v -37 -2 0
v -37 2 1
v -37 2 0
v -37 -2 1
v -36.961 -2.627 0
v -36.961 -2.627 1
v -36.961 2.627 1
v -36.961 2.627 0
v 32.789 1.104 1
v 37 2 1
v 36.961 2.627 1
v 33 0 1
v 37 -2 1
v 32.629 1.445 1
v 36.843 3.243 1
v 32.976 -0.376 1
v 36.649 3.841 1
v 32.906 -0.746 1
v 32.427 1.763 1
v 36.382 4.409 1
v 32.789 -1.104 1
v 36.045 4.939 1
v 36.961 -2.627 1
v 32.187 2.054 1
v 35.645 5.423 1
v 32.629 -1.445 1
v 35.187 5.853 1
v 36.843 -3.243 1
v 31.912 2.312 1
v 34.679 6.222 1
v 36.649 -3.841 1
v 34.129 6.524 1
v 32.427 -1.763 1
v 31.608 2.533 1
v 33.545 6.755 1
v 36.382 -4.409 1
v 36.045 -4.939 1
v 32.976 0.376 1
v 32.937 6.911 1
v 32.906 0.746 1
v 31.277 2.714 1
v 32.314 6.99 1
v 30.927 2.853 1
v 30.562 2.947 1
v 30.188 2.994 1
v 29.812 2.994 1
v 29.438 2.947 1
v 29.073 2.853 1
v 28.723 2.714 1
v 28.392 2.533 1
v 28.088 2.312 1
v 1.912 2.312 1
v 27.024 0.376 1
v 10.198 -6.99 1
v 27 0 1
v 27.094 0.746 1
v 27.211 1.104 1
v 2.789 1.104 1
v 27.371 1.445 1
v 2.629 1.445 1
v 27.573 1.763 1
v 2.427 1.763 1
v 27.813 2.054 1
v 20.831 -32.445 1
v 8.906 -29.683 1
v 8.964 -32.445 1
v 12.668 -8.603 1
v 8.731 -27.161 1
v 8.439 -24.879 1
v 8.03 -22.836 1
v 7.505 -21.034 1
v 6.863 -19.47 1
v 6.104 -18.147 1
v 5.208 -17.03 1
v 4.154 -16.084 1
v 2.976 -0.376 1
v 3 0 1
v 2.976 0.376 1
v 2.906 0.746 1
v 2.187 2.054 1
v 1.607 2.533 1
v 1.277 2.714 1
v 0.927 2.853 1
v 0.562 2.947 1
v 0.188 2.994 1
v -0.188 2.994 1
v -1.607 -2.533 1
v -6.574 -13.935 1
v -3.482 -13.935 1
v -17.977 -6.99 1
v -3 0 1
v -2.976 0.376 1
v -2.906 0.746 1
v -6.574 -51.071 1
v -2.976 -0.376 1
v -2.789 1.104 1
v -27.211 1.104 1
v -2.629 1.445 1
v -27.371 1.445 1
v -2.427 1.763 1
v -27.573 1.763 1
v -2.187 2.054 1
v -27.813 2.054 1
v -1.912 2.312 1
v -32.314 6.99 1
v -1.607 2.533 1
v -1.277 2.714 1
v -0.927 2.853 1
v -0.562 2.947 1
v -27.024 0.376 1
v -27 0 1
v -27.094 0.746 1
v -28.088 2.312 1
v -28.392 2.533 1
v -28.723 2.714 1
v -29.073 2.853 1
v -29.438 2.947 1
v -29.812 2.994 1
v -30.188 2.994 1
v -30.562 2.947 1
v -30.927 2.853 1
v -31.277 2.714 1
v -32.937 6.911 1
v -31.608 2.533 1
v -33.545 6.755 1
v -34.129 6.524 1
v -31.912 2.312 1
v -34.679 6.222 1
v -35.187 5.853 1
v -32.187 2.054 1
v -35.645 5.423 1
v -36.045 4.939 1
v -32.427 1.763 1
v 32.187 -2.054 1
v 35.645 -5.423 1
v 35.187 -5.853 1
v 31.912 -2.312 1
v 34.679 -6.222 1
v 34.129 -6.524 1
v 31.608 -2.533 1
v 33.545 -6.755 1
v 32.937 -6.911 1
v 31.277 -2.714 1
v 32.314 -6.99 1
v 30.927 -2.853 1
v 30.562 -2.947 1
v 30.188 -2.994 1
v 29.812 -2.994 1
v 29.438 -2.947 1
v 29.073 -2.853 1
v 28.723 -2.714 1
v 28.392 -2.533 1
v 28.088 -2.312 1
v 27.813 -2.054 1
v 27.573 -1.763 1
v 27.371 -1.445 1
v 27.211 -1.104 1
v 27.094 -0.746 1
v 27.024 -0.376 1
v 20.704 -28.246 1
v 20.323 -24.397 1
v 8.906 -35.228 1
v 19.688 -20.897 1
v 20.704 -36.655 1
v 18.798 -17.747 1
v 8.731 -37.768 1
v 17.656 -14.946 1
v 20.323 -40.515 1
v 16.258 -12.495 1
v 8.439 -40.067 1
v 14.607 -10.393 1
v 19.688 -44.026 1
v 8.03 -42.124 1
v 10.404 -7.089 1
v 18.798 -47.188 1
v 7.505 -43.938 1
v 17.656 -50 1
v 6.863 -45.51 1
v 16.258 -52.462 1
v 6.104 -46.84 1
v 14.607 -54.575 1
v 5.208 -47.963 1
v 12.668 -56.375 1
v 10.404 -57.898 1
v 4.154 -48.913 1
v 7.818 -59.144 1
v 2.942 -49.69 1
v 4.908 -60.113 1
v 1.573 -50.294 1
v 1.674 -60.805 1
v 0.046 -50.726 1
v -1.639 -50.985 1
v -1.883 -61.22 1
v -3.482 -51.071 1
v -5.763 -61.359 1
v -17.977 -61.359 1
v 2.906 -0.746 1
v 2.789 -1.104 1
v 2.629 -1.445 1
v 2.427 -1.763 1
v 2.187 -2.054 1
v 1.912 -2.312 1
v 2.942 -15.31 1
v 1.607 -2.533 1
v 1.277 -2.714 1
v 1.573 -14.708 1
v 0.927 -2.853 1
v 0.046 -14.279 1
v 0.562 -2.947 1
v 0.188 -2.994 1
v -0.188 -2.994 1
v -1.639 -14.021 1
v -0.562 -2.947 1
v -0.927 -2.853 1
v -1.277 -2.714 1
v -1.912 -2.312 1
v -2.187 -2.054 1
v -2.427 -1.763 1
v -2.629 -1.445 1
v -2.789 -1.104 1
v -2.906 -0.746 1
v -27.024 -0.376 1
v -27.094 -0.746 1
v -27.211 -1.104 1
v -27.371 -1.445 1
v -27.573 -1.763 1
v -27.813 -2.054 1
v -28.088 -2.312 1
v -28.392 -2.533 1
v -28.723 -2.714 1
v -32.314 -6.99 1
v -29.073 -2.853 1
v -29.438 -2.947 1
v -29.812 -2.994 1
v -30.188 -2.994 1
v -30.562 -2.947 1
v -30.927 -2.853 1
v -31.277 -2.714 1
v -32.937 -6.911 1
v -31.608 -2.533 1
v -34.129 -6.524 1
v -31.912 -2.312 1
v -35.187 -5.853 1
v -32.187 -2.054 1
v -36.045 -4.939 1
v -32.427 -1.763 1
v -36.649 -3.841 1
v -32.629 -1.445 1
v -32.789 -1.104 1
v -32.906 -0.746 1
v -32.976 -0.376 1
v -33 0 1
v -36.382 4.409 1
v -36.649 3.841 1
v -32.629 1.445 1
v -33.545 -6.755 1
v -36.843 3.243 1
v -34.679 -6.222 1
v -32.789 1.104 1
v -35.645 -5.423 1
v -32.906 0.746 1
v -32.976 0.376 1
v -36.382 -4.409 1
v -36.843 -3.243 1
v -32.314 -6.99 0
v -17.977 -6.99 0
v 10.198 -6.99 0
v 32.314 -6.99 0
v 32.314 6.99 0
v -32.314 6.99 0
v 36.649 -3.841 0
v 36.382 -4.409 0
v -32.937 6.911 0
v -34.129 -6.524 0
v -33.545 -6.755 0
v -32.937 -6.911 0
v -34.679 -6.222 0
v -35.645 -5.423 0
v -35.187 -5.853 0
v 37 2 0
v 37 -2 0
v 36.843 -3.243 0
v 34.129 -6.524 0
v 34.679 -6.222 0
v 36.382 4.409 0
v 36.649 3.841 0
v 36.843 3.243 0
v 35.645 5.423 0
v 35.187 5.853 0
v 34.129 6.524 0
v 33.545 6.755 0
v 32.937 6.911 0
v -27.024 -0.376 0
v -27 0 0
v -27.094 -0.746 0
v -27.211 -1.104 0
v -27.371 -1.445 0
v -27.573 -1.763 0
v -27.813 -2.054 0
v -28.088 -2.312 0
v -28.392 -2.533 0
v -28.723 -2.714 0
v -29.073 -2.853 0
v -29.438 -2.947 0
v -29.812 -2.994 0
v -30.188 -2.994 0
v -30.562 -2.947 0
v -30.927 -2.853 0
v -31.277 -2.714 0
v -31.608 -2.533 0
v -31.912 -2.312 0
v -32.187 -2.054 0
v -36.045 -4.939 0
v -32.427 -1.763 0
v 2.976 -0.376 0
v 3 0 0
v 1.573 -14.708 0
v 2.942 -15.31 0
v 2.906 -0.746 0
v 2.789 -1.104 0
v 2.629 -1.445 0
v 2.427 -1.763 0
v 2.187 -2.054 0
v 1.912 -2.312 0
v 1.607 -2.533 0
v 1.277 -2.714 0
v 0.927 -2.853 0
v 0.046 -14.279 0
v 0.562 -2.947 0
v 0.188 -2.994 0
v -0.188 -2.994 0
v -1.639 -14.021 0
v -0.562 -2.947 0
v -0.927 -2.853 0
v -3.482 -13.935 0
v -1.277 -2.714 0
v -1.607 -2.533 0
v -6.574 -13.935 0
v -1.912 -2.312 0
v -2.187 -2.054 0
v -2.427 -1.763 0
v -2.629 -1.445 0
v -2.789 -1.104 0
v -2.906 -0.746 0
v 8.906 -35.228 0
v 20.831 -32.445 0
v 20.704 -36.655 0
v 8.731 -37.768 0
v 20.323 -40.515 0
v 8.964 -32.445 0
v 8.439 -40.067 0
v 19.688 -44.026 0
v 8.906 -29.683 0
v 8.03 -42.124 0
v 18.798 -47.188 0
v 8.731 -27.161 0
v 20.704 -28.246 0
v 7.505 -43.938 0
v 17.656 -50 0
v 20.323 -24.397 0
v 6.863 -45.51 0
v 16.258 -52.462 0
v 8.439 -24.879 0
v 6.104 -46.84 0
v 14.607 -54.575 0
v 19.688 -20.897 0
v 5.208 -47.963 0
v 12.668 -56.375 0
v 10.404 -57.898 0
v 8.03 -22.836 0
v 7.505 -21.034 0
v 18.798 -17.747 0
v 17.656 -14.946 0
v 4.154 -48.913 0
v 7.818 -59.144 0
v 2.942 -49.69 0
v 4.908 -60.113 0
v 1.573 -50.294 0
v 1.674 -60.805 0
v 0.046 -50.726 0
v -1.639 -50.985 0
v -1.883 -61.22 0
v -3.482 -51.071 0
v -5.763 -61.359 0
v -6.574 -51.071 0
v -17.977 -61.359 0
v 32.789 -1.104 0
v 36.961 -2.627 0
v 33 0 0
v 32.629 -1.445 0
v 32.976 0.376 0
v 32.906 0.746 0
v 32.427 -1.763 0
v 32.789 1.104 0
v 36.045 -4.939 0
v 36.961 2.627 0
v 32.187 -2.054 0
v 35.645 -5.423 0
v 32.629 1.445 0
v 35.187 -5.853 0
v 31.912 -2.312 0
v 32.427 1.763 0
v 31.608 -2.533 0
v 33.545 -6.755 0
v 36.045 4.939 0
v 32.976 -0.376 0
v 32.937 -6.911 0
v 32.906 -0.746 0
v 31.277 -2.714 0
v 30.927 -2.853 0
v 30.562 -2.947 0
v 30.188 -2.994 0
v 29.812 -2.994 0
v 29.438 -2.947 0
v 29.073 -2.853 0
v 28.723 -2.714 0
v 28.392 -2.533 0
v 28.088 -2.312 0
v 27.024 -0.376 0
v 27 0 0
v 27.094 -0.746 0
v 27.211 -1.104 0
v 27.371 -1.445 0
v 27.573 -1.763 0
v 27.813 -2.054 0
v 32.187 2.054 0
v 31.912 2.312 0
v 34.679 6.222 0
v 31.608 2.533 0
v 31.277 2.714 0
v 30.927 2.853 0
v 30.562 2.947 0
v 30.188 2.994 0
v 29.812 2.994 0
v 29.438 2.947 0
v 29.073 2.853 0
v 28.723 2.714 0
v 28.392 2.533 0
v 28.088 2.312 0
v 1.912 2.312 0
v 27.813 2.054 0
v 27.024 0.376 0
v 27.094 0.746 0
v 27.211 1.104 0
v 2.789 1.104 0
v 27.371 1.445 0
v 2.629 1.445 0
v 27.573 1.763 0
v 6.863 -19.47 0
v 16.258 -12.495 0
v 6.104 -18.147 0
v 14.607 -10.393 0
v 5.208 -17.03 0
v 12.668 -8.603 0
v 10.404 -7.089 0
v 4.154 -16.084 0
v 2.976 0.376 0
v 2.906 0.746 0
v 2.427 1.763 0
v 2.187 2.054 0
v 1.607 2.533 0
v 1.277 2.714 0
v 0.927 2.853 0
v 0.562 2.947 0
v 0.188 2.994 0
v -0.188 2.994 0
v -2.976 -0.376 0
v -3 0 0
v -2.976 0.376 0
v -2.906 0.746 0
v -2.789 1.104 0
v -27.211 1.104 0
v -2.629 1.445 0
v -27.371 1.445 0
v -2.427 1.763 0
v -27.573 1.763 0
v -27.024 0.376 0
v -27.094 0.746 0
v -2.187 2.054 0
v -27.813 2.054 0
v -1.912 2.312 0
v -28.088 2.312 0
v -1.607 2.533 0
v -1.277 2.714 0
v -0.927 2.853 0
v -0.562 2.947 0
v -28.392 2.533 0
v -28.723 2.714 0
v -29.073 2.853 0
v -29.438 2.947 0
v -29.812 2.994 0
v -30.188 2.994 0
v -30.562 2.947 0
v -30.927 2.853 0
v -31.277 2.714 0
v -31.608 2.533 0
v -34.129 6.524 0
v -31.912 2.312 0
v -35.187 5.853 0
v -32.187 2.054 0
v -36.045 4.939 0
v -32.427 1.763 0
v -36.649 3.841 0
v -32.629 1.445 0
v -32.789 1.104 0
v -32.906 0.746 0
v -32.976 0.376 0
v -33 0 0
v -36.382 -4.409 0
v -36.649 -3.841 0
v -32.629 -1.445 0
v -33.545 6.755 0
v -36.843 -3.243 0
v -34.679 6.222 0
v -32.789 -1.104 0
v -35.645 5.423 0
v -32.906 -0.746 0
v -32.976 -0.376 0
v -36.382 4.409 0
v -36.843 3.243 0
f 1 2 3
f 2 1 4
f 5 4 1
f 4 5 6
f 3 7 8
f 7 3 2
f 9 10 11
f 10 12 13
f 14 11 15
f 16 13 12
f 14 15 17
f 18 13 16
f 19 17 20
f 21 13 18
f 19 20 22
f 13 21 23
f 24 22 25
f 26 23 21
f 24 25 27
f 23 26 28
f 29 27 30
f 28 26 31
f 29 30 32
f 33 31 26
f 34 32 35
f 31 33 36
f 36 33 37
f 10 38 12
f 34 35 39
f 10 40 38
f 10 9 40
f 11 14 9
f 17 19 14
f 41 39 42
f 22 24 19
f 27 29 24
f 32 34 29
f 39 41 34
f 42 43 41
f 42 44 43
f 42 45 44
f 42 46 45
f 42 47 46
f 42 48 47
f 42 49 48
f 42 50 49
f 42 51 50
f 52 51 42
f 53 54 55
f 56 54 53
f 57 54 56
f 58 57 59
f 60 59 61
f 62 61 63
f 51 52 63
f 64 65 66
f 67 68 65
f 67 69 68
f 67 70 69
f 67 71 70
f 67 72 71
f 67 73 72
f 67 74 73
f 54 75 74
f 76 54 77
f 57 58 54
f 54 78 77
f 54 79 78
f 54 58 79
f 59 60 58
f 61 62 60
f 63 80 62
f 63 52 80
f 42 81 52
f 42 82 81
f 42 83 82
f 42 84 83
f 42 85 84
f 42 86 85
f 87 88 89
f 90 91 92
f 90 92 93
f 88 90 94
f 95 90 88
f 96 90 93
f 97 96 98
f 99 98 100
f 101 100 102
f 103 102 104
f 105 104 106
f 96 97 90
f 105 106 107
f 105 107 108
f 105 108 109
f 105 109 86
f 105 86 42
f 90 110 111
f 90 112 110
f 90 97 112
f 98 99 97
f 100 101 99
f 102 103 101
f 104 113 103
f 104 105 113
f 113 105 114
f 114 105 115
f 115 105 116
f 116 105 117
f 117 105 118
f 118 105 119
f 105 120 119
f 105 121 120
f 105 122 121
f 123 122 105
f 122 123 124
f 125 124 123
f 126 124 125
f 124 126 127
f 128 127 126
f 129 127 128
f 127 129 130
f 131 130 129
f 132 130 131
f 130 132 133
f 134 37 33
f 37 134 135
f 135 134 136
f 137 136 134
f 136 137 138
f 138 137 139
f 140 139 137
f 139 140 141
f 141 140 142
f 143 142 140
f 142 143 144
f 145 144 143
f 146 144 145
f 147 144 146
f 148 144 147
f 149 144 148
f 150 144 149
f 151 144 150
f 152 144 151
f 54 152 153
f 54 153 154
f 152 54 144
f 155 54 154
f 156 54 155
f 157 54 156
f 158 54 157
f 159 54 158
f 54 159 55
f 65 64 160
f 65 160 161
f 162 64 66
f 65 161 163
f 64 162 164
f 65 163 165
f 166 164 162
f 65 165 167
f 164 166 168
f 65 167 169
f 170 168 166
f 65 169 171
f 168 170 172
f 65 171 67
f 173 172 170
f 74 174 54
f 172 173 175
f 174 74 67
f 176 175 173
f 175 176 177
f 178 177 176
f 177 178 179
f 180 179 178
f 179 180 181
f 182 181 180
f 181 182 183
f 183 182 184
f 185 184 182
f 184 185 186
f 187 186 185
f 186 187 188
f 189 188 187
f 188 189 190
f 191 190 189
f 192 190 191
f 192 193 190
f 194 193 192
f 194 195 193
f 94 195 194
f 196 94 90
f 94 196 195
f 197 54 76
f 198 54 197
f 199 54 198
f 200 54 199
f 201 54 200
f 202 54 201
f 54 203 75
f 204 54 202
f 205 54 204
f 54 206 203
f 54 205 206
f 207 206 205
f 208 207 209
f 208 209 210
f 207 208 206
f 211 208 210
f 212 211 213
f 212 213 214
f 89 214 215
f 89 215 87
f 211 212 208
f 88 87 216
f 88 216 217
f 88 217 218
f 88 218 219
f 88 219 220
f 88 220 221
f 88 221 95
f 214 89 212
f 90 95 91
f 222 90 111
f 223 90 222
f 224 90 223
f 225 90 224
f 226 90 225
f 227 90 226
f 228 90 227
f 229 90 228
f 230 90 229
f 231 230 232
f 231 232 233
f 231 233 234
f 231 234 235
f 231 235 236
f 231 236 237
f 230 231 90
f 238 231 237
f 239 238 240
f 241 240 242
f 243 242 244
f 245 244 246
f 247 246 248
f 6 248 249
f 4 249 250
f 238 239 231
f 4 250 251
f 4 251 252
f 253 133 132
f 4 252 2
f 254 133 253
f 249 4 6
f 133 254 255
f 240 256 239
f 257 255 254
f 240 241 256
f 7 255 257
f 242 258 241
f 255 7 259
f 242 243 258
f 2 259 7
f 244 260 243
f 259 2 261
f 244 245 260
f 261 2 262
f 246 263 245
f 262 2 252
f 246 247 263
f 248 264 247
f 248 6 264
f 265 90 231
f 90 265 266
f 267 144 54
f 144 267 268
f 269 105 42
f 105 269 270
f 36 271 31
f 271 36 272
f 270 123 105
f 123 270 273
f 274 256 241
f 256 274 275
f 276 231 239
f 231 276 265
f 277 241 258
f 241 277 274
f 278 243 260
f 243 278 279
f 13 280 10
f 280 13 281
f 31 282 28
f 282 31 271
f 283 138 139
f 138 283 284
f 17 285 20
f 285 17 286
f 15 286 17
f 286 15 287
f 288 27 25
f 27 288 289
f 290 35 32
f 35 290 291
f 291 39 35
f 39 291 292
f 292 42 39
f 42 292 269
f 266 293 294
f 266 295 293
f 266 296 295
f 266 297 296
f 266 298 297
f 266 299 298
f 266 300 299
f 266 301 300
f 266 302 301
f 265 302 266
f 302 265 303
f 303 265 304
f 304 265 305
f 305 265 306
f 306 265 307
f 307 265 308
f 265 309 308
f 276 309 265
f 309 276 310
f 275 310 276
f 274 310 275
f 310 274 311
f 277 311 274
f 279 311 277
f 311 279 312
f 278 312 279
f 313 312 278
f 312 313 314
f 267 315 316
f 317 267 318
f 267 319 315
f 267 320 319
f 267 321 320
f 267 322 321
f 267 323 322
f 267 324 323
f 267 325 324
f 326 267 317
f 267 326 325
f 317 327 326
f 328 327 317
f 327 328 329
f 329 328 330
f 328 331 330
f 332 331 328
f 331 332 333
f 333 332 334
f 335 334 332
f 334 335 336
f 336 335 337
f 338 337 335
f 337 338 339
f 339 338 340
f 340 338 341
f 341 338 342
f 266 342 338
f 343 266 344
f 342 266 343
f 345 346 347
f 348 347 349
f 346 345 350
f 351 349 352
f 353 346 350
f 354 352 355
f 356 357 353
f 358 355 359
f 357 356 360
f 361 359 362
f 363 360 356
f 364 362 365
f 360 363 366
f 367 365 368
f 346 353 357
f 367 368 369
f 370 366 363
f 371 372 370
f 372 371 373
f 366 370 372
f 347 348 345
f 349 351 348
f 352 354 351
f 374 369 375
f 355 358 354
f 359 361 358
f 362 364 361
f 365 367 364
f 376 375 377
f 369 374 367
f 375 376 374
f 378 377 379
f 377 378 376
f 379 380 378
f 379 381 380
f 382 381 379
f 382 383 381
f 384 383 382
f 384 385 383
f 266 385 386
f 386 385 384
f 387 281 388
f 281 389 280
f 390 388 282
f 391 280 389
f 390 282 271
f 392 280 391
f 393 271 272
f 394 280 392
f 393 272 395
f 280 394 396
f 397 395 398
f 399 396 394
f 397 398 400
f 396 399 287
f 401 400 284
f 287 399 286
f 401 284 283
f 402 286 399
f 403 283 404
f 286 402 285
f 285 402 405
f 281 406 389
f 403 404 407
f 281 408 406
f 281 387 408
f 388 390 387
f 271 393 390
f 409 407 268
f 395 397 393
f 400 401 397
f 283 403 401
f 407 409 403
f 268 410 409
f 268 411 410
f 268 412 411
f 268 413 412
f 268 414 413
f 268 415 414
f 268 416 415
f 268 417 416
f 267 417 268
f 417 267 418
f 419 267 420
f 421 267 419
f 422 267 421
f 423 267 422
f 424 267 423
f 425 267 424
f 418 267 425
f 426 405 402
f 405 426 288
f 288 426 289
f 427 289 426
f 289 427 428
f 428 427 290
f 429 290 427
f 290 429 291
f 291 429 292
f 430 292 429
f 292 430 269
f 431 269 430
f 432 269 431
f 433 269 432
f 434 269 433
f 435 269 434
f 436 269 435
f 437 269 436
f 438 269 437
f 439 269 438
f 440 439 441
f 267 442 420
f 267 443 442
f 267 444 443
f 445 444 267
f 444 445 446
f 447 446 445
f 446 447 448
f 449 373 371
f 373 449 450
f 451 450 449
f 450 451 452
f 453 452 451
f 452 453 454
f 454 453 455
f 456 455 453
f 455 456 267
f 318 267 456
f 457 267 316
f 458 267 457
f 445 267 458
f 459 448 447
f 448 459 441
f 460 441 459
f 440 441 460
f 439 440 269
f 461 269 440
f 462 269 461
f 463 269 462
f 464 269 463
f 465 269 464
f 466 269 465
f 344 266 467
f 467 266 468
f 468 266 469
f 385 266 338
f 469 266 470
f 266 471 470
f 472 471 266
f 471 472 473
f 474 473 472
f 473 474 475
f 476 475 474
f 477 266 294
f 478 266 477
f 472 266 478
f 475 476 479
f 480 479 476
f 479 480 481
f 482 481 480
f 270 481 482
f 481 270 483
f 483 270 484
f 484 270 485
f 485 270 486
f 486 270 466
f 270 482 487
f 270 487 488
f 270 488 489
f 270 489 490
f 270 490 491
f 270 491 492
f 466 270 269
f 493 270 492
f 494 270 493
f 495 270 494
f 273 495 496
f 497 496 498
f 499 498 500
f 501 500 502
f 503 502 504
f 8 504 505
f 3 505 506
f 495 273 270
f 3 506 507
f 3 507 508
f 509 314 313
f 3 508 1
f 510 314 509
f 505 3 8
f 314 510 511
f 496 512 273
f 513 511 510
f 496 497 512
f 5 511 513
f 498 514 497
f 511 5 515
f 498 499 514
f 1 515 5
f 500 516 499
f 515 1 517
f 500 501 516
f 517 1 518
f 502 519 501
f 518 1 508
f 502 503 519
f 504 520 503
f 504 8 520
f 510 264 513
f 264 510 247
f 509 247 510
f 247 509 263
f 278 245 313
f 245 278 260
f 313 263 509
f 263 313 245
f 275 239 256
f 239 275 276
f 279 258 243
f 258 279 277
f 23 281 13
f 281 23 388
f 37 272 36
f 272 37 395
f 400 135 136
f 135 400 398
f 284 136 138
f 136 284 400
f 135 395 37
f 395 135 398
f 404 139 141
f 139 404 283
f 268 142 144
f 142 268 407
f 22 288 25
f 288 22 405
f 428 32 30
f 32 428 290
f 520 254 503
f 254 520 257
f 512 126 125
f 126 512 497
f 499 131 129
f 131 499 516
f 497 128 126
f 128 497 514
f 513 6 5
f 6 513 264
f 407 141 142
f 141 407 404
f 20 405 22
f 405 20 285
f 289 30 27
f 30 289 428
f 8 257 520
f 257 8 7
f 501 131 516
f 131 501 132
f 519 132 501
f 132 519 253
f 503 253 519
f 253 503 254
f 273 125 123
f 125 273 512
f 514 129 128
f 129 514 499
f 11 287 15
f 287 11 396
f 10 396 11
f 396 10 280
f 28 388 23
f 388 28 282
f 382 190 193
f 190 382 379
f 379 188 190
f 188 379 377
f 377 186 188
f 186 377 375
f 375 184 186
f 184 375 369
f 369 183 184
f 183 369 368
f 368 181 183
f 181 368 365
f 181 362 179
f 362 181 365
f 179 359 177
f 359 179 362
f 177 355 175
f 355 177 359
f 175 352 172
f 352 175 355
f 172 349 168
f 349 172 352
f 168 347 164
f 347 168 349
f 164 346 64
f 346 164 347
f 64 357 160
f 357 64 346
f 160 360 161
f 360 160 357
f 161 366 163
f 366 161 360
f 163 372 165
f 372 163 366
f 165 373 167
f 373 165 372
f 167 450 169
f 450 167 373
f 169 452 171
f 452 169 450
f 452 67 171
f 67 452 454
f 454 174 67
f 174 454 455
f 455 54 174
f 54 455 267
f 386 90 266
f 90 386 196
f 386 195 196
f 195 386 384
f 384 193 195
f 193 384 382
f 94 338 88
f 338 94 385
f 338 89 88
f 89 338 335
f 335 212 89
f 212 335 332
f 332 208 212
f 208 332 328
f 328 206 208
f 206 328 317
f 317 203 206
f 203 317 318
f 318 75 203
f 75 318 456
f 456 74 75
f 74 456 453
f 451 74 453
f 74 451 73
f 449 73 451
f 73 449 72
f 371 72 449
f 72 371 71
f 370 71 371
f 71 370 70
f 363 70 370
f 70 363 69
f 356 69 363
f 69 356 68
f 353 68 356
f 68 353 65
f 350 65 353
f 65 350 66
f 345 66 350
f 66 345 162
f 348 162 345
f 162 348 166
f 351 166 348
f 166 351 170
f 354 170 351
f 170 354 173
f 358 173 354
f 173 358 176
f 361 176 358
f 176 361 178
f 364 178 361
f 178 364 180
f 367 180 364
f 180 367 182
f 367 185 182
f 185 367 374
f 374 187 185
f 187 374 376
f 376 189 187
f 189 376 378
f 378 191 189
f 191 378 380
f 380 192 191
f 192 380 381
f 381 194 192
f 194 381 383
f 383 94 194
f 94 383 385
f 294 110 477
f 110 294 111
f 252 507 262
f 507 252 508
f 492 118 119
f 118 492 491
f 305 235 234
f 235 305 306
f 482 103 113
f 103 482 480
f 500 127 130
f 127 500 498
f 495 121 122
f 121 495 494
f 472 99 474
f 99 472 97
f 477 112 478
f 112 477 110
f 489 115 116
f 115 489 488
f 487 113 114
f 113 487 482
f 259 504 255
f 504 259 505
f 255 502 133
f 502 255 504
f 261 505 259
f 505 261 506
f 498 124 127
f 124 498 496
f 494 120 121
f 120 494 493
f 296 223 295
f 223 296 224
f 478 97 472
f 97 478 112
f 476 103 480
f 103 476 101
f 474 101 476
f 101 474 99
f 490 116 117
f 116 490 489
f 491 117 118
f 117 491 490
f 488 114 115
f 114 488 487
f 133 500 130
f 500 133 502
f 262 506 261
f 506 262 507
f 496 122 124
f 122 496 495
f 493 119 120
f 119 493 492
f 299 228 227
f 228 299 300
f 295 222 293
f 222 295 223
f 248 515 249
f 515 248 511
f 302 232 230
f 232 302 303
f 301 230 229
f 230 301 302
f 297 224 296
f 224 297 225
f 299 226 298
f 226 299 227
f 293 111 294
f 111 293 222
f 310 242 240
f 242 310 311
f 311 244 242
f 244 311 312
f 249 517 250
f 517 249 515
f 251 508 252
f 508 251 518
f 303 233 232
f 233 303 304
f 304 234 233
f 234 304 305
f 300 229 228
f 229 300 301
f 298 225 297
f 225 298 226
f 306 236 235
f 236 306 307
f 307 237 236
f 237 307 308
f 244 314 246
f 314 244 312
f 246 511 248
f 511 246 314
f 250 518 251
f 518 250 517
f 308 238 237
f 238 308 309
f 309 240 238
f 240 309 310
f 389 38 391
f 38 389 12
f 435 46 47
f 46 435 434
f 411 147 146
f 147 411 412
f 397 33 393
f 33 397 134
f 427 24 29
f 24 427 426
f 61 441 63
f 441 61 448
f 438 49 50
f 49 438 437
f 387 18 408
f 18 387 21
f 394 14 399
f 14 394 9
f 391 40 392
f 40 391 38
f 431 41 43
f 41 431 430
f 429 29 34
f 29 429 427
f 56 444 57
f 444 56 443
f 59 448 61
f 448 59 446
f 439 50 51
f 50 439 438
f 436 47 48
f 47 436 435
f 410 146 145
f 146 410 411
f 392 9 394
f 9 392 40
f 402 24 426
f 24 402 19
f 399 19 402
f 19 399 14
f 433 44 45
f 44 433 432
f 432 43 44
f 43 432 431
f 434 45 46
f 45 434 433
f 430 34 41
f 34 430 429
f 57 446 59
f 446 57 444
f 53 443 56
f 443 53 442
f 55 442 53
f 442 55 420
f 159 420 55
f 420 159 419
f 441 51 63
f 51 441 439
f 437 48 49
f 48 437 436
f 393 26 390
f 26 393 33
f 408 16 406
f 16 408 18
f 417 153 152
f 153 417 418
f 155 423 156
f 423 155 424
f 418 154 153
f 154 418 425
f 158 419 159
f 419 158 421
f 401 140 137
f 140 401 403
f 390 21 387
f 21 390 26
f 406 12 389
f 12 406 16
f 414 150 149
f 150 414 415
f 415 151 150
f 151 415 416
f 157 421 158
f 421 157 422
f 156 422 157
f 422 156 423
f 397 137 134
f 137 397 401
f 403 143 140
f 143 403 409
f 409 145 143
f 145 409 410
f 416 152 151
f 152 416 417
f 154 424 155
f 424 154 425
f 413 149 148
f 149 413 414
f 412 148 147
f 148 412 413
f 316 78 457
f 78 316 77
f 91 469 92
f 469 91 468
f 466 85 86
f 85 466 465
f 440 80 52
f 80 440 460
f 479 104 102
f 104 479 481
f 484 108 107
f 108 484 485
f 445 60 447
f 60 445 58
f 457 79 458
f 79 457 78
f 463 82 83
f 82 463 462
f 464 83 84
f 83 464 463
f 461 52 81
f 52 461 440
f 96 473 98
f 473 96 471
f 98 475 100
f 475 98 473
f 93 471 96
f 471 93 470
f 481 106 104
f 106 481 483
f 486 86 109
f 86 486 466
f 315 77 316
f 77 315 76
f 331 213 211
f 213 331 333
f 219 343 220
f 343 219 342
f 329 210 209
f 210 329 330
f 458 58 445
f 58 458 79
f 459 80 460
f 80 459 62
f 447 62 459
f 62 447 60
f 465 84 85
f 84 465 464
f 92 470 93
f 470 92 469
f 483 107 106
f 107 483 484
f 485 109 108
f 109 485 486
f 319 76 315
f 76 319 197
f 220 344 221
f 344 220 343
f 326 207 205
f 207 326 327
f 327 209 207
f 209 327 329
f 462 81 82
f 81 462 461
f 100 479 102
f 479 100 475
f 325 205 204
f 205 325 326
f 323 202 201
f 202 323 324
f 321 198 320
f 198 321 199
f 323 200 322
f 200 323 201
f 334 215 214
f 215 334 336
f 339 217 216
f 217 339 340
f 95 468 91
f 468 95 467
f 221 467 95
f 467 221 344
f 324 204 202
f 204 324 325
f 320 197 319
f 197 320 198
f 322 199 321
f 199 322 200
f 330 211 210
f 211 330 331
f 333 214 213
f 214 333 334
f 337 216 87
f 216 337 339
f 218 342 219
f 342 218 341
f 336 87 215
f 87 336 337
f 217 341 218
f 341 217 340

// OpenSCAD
$fn = 50;


difference() {
	union() {
		translate(v = [0, 0, 0]) {
			rotate(a = [0, 0, 0]) {
				hull() {
					translate(v = [-32.0000000000, 2.0000000000, 0]) {
						rotate(a = [0, 0, 0]) {
							translate(v = [0, 0, 0]) {
								rotate(a = [0, 0, 0]) {
									cylinder(h = 1, r = 5);
								}
							}
						}
					}
					translate(v = [32.0000000000, 2.0000000000, 0]) {
						rotate(a = [0, 0, 0]) {
							translate(v = [0, 0, 0]) {
								rotate(a = [0, 0, 0]) {
									cylinder(h = 1, r = 5);
								}
							}
						}
					}
					translate(v = [-32.0000000000, -2.0000000000, 0]) {
						rotate(a = [0, 0, 0]) {
							translate(v = [0, 0, 0]) {
								rotate(a = [0, 0, 0]) {
									cylinder(h = 1, r = 5);
								}
							}
						}
					}
					translate(v = [32.0000000000, -2.0000000000, 0]) {
						rotate(a = [0, 0, 0]) {
							translate(v = [0, 0, 0]) {
								rotate(a = [0, 0, 0]) {
									cylinder(h = 1, r = 5);
								}
							}
						}
					}
				}
			}
		}
		translate(v = [0, -5, 0]) {
			rotate(a = [0, 0, 0]) {
				linear_extrude(height = 1) {
					text(font = "DejaVu Sans Mono:style=Bold", halign = "center", size = 57.0000000000, text = "D", valign = "top");
				}
			}
		}
	}
	union() {
		translate(v = [-30.0000000000, 0.0000000000, -125.0000000000]) {
			rotate(a = [0, 0, 0]) {
				cylinder(h = 250, r = 3.0000000000);
			}
		}
		translate(v = [30.0000000000, 0.0000000000, -125.0000000000]) {
			rotate(a = [0, 0, 0]) {
				cylinder(h = 250, r = 3.0000000000);
			}
		}
		translate(v = [30.0000000000, 0.0000000000, -125.0000000000]) {
			rotate(a = [0, 0, 0]) {
				cylinder(h = 250, r = 3.0000000000);
			}
		}
		translate(v = [0, 0, -125.0000000000]) {
			rotate(a = [0, 0, 0]) {
				cylinder(h = 250, r = 3.0000000000);
			}
		}
	}
}
